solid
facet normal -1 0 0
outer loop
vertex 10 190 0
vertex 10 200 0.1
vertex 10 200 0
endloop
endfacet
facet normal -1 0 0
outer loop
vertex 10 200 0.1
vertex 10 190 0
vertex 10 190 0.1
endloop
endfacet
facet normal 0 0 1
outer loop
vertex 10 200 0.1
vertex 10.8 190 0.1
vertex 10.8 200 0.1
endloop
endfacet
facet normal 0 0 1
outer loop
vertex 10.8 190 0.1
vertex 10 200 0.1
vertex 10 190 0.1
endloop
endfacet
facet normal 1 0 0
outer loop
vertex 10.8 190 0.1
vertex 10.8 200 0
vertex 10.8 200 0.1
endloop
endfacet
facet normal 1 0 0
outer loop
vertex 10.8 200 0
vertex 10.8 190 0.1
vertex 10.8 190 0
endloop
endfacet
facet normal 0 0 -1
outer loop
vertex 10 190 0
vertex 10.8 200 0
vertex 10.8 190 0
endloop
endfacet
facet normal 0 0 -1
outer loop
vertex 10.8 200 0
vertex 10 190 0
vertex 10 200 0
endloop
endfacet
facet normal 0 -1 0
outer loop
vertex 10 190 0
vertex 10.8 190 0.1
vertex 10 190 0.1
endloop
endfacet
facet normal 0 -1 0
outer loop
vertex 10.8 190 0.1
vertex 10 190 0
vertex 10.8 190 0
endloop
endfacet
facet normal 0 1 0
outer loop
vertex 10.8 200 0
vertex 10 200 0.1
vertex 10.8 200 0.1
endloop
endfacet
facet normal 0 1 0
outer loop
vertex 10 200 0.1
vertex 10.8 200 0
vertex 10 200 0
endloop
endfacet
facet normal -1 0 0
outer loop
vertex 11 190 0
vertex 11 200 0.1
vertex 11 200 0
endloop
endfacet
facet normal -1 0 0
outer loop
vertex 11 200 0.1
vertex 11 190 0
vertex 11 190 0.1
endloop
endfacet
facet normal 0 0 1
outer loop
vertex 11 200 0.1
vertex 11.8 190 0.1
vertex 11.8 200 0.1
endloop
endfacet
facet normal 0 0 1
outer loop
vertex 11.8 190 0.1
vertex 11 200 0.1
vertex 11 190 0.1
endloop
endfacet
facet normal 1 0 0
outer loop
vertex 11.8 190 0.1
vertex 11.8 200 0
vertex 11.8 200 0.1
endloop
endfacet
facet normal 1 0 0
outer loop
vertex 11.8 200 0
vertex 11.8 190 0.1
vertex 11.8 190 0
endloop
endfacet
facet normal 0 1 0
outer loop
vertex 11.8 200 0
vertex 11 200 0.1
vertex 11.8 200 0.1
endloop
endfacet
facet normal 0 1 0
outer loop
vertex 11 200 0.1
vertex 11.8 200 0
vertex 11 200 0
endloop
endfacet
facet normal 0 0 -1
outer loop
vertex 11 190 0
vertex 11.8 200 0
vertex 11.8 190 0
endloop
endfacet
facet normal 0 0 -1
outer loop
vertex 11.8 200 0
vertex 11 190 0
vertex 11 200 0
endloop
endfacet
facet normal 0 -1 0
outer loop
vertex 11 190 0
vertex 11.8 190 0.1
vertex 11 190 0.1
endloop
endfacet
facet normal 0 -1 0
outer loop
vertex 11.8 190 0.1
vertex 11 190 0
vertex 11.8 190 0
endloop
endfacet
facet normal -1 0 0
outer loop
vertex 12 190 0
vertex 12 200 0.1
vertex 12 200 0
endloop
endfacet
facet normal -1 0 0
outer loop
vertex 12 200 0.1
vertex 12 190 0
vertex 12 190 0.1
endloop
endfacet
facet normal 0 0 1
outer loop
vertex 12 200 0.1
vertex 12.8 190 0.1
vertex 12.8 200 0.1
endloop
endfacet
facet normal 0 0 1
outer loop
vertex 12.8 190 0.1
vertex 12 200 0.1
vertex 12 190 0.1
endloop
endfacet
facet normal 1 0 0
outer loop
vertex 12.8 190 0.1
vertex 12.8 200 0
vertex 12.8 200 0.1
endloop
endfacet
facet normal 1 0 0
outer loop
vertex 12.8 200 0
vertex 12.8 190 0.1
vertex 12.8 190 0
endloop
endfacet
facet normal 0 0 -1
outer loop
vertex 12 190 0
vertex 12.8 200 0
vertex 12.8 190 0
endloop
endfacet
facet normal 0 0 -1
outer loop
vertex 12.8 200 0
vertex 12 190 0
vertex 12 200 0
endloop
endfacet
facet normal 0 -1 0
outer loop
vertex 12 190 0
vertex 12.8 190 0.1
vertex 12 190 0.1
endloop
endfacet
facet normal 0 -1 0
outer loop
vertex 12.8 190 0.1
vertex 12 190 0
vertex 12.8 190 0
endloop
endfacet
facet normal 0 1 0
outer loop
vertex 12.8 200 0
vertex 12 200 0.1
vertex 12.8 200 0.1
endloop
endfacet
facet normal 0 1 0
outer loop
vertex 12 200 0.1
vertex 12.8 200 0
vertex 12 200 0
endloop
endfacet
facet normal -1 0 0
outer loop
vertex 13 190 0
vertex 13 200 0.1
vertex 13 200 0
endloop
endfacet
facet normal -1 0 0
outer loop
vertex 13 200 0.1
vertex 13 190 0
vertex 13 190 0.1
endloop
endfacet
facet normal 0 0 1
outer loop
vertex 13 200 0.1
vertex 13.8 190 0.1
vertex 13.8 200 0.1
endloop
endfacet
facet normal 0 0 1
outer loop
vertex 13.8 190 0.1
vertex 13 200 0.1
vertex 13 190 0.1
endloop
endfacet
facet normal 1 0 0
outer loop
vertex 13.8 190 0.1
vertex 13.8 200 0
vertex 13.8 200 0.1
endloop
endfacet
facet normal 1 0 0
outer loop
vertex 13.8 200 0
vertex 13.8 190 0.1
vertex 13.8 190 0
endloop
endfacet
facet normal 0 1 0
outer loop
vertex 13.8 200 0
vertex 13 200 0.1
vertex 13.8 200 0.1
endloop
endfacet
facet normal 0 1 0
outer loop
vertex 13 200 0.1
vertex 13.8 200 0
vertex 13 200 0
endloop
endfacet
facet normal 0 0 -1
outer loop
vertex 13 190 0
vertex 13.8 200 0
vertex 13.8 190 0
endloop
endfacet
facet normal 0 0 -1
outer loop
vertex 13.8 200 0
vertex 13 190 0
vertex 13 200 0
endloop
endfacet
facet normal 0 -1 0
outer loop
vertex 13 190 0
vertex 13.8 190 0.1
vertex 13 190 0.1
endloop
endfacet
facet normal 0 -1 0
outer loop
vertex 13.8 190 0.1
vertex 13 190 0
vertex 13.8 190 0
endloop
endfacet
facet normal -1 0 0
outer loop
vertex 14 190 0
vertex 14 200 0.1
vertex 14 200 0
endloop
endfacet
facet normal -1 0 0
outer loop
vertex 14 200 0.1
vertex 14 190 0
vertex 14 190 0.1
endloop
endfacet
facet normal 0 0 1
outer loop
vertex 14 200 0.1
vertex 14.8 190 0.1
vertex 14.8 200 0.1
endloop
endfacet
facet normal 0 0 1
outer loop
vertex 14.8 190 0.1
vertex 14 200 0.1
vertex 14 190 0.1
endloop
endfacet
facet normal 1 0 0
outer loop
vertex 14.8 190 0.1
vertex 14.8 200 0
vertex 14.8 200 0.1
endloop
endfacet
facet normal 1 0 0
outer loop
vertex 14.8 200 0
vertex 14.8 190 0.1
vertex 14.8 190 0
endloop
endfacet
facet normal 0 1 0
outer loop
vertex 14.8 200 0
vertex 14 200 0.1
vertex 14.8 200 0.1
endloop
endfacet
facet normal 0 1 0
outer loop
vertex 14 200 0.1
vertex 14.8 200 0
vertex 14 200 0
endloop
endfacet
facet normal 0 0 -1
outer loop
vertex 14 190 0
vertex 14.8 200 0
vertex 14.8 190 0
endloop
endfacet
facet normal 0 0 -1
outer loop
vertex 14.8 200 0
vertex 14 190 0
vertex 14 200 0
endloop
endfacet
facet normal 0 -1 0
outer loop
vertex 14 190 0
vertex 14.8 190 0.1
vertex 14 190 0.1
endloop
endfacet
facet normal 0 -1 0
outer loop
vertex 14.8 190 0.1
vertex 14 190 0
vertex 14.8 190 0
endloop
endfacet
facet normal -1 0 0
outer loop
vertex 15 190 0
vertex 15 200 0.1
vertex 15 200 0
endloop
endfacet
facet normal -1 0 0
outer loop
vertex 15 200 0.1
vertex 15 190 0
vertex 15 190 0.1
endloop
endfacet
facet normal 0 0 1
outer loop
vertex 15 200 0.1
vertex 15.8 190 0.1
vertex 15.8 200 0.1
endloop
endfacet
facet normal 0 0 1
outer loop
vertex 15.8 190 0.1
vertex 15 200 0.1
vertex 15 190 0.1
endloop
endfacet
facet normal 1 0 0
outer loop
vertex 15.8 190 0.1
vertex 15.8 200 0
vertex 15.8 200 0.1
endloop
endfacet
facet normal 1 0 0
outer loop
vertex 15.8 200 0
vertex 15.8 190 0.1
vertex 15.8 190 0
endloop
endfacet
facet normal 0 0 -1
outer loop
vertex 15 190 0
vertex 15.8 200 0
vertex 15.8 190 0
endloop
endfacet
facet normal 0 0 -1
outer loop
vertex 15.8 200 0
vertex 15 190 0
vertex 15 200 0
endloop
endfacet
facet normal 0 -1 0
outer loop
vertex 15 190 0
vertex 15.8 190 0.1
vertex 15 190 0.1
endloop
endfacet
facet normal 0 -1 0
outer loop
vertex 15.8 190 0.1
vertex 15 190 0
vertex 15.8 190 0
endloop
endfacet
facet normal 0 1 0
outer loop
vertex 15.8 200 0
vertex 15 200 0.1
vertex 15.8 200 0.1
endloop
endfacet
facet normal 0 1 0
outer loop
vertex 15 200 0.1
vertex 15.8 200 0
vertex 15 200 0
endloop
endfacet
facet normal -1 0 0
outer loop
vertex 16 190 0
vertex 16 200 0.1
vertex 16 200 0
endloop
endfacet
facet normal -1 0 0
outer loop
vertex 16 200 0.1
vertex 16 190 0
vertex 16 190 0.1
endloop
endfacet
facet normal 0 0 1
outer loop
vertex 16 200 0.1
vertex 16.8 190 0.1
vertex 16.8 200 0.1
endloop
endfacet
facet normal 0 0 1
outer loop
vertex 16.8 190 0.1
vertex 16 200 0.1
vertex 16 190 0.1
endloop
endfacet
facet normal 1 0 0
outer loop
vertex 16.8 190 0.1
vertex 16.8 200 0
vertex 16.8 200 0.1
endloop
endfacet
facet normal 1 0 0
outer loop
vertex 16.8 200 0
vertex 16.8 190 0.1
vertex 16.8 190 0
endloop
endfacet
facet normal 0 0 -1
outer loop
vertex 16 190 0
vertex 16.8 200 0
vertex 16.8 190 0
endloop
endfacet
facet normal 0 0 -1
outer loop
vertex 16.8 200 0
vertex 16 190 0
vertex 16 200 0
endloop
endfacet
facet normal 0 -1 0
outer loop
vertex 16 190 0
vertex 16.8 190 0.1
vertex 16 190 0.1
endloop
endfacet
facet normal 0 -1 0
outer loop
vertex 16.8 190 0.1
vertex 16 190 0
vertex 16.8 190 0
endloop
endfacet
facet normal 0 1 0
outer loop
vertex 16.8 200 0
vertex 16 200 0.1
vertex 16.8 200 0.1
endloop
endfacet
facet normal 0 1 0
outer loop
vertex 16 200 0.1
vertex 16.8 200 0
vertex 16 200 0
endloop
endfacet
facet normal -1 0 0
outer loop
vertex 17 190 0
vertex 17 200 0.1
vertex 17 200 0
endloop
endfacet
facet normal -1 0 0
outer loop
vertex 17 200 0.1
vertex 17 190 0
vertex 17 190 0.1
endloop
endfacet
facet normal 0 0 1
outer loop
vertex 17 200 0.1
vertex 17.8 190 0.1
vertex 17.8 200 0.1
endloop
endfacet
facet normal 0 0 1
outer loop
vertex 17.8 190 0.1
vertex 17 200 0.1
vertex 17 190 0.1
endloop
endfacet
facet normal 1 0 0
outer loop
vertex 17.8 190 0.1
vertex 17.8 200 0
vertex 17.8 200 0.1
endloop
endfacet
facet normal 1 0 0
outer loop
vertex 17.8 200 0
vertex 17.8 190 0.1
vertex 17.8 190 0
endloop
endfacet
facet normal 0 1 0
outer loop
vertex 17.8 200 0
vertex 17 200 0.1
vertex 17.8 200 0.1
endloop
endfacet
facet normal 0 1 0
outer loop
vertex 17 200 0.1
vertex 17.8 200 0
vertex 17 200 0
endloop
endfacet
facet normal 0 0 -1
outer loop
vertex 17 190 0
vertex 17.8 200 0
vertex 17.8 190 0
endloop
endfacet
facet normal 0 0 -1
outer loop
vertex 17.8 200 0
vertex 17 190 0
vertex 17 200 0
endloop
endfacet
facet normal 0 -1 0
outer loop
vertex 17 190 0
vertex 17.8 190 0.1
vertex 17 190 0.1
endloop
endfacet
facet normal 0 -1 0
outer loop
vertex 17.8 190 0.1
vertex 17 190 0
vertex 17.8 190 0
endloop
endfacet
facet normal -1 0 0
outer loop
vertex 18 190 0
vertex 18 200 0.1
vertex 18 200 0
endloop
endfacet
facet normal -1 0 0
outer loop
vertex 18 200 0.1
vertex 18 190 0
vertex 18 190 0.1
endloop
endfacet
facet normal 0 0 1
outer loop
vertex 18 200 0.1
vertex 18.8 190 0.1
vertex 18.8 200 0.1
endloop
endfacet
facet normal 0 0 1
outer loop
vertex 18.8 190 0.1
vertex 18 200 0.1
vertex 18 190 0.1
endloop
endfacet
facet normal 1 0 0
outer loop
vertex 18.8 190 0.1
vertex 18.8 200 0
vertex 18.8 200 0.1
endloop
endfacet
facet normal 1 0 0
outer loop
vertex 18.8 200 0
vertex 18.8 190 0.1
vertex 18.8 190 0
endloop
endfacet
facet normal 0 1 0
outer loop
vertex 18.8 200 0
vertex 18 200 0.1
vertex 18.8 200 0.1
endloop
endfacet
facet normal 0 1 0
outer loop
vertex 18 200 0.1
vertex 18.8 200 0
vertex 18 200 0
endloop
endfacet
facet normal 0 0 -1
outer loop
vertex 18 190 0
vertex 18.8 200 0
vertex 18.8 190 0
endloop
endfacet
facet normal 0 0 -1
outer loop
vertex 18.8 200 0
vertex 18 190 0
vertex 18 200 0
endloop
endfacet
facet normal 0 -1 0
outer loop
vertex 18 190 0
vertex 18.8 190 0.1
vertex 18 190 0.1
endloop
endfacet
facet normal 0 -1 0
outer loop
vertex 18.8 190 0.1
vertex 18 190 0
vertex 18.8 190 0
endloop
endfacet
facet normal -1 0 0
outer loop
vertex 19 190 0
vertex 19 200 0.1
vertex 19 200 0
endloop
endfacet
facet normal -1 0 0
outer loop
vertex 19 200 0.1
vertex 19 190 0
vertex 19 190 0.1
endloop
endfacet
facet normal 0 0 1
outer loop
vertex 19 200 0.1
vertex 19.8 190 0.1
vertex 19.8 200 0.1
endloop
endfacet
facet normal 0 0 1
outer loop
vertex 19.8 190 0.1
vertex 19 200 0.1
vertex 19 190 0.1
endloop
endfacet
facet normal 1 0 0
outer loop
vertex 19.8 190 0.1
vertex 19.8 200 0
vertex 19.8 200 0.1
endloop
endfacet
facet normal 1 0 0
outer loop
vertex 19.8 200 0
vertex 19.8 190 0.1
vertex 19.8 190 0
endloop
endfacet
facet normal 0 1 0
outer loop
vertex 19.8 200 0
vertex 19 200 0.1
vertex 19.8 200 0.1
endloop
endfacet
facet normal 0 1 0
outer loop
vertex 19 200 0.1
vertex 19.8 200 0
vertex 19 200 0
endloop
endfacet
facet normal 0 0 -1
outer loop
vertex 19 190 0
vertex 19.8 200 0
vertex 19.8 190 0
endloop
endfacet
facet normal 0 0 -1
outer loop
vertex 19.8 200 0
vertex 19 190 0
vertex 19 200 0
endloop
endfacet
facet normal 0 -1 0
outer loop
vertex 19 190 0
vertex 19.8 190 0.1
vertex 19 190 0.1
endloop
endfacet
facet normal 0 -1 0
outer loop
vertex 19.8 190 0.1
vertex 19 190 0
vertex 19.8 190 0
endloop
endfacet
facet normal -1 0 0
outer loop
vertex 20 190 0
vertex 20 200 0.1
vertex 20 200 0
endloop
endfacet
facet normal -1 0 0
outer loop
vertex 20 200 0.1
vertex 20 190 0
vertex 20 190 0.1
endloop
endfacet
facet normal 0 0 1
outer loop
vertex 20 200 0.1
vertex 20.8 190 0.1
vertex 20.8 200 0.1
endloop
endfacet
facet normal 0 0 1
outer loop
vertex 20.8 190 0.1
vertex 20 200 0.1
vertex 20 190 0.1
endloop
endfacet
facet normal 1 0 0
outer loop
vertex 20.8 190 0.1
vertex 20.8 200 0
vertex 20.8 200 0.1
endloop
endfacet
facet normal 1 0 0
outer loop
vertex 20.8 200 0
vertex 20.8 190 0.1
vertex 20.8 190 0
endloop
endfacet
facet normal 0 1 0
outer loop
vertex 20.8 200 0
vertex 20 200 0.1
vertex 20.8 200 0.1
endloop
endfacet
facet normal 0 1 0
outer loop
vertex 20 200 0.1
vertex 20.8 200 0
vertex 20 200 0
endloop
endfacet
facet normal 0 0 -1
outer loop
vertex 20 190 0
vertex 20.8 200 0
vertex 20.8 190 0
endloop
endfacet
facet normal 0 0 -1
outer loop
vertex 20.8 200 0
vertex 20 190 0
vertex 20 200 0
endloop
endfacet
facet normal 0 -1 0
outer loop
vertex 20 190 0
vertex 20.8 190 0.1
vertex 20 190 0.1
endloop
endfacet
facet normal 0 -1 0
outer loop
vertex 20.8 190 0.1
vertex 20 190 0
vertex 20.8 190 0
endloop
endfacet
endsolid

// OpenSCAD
translate([10+0,10+180,0])
        for (i = [0 : 10]){
            translate([i,0,0])
                cube(size = [0.8,10,0.1]);
    }
